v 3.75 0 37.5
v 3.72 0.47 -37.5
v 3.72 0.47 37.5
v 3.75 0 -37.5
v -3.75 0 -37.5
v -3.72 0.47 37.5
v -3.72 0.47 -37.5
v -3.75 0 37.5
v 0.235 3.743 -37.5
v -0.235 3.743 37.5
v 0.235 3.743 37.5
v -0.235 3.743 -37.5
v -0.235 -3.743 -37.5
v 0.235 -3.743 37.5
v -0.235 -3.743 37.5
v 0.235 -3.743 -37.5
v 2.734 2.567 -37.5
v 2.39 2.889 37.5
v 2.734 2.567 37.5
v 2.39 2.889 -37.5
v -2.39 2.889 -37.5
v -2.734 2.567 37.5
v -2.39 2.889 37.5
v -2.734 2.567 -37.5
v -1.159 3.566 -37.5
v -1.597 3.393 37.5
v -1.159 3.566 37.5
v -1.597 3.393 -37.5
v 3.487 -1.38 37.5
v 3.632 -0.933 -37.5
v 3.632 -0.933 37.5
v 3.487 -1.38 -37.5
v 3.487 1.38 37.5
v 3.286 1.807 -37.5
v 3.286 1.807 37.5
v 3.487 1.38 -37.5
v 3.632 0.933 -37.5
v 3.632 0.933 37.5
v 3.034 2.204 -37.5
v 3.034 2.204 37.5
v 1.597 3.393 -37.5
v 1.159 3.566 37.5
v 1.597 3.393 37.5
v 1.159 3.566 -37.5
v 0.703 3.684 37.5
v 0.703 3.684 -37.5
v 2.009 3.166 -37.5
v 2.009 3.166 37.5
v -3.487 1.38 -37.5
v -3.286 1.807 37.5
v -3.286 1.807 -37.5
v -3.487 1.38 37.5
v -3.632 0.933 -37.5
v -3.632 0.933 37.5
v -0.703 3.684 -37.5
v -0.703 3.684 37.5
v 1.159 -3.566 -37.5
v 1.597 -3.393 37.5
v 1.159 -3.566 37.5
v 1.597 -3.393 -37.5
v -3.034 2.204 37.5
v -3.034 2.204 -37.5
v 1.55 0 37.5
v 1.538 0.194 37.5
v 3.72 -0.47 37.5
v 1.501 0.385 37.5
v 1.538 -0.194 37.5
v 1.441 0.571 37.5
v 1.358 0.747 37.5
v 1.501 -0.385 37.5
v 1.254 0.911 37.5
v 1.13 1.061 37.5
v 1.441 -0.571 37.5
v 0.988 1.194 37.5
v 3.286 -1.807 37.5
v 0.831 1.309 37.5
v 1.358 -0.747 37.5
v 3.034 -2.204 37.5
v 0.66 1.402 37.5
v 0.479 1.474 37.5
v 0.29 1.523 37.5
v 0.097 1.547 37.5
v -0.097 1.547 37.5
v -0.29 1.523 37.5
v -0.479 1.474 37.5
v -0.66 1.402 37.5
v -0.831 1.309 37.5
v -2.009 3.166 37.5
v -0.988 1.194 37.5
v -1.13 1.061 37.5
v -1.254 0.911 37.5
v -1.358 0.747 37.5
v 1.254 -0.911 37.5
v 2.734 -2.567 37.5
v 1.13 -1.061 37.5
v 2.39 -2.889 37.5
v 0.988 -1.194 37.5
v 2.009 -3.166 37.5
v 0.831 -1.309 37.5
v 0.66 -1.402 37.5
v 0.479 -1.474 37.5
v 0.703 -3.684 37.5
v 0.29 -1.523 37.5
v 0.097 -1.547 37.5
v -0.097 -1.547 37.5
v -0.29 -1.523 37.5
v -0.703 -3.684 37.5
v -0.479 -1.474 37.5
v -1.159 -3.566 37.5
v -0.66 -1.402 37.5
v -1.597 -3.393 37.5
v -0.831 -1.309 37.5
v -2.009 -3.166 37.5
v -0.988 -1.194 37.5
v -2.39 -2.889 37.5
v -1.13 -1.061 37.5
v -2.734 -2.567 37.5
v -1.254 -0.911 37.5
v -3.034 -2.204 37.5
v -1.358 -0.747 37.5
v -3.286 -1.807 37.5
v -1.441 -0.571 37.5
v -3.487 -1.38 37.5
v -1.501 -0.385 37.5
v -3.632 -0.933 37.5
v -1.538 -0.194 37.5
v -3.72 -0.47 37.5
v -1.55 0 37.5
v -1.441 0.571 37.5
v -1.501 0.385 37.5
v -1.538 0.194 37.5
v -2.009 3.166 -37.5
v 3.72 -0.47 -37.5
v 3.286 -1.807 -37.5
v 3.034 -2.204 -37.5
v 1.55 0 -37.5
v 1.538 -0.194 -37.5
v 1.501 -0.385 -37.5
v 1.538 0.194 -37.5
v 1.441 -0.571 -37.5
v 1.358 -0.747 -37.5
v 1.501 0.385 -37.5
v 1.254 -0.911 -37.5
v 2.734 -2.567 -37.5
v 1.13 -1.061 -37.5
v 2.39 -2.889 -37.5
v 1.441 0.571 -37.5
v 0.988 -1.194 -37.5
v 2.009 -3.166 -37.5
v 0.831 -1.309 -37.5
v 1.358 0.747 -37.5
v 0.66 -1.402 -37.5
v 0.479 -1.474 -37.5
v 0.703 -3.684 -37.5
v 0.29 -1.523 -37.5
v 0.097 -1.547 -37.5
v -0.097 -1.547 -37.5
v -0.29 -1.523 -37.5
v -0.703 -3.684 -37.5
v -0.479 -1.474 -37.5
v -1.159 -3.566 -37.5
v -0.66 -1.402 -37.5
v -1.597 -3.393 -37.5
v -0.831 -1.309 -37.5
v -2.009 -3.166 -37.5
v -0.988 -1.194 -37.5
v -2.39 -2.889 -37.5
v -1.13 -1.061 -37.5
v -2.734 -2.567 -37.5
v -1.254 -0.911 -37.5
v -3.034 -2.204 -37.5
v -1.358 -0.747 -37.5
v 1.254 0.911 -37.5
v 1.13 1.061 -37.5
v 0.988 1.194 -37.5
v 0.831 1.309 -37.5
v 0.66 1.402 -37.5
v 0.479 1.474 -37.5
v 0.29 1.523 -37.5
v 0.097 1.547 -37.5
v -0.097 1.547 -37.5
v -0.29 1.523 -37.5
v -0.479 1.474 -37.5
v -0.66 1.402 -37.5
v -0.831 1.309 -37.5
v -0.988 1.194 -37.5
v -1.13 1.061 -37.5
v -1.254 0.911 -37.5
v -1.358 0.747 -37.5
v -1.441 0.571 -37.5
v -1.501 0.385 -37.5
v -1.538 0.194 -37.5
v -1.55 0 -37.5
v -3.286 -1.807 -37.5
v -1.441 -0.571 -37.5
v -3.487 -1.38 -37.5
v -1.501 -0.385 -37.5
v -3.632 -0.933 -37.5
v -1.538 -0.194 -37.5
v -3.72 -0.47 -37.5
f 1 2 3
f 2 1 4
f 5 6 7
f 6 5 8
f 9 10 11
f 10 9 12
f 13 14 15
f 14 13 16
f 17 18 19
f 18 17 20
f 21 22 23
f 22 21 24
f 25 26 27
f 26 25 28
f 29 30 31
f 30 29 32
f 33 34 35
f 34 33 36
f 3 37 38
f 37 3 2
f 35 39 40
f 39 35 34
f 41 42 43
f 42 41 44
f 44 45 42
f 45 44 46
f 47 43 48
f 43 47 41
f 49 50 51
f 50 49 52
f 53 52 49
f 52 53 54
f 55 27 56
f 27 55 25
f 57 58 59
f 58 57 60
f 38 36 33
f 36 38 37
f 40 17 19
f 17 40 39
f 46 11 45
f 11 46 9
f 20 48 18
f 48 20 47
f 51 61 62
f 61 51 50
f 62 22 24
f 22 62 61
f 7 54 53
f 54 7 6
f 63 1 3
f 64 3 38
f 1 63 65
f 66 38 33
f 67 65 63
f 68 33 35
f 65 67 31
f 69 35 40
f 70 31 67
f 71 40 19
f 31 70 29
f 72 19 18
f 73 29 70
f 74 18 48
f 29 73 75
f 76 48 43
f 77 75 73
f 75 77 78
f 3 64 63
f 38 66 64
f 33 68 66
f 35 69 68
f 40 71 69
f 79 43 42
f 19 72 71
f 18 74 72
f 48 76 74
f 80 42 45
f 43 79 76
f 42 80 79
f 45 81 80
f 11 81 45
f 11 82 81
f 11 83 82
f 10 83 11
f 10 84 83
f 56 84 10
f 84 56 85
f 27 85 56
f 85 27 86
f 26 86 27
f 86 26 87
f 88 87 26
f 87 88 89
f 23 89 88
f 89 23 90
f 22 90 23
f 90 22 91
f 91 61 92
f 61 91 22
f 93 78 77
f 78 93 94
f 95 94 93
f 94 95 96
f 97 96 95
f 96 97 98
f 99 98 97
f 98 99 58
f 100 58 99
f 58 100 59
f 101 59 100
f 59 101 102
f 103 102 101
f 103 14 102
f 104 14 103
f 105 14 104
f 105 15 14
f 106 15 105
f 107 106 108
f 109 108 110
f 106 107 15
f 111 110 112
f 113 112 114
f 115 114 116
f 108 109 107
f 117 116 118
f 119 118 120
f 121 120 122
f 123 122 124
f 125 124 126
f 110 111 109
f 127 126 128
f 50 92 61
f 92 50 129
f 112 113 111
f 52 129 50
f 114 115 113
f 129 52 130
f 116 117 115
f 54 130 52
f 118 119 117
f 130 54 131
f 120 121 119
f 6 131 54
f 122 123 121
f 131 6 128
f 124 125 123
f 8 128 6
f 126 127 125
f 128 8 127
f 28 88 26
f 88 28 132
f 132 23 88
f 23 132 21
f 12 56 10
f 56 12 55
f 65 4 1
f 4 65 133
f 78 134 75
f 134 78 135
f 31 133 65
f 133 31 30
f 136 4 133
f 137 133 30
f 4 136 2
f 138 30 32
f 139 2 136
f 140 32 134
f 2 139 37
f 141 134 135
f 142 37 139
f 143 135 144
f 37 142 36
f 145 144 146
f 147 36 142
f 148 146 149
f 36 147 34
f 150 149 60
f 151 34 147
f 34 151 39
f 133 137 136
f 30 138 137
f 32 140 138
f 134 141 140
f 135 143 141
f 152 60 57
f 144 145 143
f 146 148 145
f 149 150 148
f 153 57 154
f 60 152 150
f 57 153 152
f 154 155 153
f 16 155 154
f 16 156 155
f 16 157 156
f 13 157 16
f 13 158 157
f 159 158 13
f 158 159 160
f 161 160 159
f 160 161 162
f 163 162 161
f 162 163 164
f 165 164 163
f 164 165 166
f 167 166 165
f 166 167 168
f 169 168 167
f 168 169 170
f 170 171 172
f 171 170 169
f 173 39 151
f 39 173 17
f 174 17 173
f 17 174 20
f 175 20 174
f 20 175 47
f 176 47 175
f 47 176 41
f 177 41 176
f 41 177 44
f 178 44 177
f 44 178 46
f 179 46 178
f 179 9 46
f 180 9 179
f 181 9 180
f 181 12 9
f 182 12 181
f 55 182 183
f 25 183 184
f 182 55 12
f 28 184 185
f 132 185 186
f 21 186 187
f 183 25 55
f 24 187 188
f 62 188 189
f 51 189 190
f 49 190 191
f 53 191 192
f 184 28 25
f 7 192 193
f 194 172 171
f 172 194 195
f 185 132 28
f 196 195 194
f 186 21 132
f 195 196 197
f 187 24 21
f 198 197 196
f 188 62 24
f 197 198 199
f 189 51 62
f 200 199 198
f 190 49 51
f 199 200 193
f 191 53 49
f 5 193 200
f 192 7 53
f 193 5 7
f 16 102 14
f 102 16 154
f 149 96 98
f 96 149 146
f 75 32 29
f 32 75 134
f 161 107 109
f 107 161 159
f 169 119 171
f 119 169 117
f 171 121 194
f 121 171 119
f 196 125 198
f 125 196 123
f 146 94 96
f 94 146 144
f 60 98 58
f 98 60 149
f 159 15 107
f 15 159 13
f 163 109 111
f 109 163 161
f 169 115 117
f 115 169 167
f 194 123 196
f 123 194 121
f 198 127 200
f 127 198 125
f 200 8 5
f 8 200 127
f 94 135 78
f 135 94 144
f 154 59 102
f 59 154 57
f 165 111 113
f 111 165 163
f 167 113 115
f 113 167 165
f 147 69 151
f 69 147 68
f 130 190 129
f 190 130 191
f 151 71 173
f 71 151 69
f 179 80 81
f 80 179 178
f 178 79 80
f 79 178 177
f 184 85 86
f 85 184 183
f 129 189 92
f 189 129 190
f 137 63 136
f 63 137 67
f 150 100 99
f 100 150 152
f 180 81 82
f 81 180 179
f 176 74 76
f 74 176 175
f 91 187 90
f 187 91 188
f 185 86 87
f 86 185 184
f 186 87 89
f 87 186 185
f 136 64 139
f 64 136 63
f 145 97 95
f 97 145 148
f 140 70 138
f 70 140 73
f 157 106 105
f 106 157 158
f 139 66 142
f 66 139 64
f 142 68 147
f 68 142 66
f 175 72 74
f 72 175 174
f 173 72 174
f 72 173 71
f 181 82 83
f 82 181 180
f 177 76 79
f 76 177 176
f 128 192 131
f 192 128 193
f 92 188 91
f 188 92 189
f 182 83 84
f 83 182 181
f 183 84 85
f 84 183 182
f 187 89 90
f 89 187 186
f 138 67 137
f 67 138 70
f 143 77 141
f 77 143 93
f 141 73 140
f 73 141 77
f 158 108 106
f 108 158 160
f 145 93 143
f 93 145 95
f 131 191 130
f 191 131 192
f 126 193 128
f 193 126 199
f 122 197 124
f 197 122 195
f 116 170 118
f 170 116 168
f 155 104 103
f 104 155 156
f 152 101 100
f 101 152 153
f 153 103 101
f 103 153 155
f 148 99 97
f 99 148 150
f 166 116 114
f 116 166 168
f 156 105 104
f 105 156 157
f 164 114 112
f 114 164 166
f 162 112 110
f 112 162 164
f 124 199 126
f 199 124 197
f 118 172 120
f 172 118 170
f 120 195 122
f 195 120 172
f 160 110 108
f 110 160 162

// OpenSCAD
$fn = 50;


difference() {
	union() {
		translate(v = [0, 0, -37.5000000000]) {
			cylinder(h = 75, r = 3.7500000000);
		}
	}
	union() {
		translate(v = [0, 0, -100.0000000000]) {
			cylinder(h = 200, r = 1.5500000000);
		}
	}
}
